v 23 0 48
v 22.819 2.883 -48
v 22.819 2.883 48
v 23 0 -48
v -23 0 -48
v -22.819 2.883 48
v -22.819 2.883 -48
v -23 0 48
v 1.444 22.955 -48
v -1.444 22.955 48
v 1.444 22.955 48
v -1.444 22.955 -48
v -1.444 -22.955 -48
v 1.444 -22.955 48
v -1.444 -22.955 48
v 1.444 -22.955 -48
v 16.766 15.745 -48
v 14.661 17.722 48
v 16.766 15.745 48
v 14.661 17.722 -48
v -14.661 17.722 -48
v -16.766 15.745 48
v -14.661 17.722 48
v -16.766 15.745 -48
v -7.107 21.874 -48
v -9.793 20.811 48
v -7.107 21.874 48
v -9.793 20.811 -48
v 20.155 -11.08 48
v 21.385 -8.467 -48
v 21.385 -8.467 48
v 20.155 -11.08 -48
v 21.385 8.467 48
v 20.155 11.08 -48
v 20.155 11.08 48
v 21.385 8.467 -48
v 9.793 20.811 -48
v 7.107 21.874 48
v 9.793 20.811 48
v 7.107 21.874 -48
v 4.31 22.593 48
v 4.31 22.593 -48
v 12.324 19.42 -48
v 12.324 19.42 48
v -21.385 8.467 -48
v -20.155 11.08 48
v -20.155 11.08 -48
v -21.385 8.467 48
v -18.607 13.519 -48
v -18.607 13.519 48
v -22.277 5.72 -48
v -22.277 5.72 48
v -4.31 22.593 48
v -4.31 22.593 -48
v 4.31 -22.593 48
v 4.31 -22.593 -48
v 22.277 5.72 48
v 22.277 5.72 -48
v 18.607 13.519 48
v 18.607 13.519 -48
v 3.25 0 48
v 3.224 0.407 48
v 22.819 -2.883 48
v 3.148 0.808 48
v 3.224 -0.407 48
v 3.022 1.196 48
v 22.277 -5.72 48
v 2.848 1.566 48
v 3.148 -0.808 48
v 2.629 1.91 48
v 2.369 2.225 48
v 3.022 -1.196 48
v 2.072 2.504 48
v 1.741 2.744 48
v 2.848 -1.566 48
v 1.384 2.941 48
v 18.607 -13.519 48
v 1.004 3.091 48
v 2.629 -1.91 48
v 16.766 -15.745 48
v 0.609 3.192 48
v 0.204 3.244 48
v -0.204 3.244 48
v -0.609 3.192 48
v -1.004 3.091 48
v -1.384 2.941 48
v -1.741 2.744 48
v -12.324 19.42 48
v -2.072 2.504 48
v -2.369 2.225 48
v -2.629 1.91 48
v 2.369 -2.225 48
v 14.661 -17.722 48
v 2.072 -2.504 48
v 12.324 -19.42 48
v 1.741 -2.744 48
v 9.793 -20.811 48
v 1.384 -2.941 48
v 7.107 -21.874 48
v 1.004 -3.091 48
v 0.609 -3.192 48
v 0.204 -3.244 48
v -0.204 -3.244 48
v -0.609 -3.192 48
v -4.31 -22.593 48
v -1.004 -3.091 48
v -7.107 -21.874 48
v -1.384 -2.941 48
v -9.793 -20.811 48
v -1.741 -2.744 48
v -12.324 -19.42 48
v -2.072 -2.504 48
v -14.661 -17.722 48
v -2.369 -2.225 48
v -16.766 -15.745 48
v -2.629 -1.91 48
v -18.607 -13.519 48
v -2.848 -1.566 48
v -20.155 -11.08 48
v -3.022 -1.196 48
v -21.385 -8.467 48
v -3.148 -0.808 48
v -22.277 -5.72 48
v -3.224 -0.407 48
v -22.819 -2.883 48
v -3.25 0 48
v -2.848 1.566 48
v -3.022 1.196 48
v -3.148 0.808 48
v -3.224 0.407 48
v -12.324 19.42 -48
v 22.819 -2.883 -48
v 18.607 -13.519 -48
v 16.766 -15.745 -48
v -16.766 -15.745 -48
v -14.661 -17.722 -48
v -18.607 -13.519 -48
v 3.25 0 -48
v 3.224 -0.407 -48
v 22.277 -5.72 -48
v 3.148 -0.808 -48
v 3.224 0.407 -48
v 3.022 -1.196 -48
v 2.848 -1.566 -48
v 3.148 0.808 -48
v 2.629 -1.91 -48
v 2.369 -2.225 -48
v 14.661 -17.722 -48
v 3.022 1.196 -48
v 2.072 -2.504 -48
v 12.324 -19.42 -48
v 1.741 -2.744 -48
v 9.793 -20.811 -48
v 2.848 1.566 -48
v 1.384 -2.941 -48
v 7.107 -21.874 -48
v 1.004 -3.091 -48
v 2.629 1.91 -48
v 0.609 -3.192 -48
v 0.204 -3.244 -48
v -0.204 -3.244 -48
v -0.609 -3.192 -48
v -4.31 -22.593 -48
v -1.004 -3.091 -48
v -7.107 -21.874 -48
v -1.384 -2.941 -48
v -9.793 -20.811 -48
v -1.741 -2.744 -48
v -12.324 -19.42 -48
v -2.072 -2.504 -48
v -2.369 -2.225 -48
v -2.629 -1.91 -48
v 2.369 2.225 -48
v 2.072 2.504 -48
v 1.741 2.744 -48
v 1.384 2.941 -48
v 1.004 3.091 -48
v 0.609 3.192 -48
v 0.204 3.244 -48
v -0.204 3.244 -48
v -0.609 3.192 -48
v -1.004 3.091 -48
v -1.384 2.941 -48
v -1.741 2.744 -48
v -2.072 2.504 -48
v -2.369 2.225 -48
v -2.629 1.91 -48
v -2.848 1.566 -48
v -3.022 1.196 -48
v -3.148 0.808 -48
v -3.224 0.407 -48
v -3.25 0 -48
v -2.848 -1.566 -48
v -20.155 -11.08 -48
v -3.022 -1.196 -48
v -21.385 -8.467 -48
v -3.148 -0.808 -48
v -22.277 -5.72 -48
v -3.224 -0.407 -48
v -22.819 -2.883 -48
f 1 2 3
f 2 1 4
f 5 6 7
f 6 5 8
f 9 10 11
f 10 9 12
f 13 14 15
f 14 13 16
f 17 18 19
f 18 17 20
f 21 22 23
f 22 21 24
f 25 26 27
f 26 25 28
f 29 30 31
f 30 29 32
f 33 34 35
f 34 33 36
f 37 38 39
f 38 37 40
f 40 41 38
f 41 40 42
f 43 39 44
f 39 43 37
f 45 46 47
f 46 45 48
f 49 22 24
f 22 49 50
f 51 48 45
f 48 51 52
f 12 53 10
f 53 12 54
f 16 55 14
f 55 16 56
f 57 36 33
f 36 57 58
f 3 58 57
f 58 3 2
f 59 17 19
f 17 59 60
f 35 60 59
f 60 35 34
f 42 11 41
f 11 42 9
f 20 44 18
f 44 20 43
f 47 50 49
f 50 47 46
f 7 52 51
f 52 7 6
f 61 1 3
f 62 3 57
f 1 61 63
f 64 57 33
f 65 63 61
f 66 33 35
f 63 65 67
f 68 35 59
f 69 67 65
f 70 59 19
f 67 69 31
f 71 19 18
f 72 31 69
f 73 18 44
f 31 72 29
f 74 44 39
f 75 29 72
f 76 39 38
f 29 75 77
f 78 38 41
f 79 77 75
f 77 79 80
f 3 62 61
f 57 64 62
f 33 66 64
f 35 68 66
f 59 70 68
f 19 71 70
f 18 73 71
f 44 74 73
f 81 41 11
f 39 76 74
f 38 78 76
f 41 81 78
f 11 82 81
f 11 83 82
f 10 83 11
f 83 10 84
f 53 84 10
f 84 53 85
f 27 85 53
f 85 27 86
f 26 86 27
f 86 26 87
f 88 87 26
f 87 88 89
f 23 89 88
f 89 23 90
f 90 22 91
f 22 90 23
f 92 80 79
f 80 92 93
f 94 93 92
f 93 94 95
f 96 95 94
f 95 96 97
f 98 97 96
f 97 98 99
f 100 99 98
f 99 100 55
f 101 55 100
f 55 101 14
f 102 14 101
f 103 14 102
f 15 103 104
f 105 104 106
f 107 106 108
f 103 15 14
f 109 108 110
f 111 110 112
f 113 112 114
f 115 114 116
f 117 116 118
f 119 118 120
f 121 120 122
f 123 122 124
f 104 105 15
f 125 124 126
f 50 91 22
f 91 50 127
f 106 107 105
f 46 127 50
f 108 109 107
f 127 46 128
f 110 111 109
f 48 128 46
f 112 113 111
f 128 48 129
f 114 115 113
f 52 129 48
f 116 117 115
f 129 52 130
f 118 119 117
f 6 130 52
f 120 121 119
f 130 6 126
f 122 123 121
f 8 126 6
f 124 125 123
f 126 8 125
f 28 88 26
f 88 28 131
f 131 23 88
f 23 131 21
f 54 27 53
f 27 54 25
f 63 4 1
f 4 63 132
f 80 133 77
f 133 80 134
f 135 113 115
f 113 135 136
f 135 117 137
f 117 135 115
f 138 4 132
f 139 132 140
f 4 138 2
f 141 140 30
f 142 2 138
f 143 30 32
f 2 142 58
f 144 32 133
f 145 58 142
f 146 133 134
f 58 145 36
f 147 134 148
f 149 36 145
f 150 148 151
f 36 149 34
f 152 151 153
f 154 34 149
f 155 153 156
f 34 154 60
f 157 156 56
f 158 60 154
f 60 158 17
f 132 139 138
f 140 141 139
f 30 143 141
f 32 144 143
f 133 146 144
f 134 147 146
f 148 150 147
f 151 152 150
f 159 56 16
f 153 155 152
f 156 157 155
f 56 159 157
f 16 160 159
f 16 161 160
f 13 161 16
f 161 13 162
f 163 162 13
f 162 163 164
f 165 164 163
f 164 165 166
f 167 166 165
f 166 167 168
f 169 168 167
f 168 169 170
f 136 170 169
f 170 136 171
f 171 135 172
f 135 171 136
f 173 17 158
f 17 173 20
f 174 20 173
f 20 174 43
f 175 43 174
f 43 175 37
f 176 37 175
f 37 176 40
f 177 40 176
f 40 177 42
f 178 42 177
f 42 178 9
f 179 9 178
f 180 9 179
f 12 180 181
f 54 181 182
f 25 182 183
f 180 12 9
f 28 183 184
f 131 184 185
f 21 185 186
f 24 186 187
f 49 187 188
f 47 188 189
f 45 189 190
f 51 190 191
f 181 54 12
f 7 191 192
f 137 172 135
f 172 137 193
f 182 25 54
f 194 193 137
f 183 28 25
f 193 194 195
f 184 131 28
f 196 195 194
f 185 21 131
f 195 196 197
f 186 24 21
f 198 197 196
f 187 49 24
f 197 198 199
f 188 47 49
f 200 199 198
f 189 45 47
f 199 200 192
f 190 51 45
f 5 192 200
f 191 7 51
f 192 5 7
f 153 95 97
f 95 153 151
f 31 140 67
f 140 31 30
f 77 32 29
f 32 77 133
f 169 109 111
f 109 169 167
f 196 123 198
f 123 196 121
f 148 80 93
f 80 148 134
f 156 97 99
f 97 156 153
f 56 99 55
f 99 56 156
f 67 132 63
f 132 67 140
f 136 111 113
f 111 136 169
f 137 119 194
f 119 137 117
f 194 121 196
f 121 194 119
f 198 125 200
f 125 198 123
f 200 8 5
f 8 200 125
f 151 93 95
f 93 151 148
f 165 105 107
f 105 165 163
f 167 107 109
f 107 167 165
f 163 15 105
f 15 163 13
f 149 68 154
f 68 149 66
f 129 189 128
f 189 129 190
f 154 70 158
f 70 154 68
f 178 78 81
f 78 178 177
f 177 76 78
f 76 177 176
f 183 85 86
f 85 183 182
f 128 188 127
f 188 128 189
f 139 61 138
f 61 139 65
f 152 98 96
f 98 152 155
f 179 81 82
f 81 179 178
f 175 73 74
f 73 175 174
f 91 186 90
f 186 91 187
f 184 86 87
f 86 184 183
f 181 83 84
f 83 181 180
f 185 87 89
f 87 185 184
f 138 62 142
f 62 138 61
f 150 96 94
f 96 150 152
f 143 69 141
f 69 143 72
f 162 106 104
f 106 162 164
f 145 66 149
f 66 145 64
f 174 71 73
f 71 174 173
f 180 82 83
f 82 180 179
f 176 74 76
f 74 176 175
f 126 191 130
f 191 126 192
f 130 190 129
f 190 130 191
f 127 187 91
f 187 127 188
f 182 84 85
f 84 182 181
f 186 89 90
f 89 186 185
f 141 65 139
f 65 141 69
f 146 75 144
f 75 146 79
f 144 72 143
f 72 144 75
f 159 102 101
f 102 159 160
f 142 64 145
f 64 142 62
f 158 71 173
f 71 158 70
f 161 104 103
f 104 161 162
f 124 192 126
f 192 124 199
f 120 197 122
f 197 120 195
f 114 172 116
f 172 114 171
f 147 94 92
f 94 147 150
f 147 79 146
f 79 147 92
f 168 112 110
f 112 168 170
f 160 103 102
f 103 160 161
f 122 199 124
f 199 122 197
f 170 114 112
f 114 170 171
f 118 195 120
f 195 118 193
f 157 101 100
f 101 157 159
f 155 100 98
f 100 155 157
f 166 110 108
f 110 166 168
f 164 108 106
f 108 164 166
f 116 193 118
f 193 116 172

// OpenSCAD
$fn = 50;


difference() {
	union() {
		translate(v = [0, 0, -48.0000000000]) {
			cylinder(h = 96, r = 23.0000000000);
		}
	}
	union() {
		translate(v = [0, 0, -100.0000000000]) {
			cylinder(h = 200, r = 3.2500000000);
		}
	}
}
